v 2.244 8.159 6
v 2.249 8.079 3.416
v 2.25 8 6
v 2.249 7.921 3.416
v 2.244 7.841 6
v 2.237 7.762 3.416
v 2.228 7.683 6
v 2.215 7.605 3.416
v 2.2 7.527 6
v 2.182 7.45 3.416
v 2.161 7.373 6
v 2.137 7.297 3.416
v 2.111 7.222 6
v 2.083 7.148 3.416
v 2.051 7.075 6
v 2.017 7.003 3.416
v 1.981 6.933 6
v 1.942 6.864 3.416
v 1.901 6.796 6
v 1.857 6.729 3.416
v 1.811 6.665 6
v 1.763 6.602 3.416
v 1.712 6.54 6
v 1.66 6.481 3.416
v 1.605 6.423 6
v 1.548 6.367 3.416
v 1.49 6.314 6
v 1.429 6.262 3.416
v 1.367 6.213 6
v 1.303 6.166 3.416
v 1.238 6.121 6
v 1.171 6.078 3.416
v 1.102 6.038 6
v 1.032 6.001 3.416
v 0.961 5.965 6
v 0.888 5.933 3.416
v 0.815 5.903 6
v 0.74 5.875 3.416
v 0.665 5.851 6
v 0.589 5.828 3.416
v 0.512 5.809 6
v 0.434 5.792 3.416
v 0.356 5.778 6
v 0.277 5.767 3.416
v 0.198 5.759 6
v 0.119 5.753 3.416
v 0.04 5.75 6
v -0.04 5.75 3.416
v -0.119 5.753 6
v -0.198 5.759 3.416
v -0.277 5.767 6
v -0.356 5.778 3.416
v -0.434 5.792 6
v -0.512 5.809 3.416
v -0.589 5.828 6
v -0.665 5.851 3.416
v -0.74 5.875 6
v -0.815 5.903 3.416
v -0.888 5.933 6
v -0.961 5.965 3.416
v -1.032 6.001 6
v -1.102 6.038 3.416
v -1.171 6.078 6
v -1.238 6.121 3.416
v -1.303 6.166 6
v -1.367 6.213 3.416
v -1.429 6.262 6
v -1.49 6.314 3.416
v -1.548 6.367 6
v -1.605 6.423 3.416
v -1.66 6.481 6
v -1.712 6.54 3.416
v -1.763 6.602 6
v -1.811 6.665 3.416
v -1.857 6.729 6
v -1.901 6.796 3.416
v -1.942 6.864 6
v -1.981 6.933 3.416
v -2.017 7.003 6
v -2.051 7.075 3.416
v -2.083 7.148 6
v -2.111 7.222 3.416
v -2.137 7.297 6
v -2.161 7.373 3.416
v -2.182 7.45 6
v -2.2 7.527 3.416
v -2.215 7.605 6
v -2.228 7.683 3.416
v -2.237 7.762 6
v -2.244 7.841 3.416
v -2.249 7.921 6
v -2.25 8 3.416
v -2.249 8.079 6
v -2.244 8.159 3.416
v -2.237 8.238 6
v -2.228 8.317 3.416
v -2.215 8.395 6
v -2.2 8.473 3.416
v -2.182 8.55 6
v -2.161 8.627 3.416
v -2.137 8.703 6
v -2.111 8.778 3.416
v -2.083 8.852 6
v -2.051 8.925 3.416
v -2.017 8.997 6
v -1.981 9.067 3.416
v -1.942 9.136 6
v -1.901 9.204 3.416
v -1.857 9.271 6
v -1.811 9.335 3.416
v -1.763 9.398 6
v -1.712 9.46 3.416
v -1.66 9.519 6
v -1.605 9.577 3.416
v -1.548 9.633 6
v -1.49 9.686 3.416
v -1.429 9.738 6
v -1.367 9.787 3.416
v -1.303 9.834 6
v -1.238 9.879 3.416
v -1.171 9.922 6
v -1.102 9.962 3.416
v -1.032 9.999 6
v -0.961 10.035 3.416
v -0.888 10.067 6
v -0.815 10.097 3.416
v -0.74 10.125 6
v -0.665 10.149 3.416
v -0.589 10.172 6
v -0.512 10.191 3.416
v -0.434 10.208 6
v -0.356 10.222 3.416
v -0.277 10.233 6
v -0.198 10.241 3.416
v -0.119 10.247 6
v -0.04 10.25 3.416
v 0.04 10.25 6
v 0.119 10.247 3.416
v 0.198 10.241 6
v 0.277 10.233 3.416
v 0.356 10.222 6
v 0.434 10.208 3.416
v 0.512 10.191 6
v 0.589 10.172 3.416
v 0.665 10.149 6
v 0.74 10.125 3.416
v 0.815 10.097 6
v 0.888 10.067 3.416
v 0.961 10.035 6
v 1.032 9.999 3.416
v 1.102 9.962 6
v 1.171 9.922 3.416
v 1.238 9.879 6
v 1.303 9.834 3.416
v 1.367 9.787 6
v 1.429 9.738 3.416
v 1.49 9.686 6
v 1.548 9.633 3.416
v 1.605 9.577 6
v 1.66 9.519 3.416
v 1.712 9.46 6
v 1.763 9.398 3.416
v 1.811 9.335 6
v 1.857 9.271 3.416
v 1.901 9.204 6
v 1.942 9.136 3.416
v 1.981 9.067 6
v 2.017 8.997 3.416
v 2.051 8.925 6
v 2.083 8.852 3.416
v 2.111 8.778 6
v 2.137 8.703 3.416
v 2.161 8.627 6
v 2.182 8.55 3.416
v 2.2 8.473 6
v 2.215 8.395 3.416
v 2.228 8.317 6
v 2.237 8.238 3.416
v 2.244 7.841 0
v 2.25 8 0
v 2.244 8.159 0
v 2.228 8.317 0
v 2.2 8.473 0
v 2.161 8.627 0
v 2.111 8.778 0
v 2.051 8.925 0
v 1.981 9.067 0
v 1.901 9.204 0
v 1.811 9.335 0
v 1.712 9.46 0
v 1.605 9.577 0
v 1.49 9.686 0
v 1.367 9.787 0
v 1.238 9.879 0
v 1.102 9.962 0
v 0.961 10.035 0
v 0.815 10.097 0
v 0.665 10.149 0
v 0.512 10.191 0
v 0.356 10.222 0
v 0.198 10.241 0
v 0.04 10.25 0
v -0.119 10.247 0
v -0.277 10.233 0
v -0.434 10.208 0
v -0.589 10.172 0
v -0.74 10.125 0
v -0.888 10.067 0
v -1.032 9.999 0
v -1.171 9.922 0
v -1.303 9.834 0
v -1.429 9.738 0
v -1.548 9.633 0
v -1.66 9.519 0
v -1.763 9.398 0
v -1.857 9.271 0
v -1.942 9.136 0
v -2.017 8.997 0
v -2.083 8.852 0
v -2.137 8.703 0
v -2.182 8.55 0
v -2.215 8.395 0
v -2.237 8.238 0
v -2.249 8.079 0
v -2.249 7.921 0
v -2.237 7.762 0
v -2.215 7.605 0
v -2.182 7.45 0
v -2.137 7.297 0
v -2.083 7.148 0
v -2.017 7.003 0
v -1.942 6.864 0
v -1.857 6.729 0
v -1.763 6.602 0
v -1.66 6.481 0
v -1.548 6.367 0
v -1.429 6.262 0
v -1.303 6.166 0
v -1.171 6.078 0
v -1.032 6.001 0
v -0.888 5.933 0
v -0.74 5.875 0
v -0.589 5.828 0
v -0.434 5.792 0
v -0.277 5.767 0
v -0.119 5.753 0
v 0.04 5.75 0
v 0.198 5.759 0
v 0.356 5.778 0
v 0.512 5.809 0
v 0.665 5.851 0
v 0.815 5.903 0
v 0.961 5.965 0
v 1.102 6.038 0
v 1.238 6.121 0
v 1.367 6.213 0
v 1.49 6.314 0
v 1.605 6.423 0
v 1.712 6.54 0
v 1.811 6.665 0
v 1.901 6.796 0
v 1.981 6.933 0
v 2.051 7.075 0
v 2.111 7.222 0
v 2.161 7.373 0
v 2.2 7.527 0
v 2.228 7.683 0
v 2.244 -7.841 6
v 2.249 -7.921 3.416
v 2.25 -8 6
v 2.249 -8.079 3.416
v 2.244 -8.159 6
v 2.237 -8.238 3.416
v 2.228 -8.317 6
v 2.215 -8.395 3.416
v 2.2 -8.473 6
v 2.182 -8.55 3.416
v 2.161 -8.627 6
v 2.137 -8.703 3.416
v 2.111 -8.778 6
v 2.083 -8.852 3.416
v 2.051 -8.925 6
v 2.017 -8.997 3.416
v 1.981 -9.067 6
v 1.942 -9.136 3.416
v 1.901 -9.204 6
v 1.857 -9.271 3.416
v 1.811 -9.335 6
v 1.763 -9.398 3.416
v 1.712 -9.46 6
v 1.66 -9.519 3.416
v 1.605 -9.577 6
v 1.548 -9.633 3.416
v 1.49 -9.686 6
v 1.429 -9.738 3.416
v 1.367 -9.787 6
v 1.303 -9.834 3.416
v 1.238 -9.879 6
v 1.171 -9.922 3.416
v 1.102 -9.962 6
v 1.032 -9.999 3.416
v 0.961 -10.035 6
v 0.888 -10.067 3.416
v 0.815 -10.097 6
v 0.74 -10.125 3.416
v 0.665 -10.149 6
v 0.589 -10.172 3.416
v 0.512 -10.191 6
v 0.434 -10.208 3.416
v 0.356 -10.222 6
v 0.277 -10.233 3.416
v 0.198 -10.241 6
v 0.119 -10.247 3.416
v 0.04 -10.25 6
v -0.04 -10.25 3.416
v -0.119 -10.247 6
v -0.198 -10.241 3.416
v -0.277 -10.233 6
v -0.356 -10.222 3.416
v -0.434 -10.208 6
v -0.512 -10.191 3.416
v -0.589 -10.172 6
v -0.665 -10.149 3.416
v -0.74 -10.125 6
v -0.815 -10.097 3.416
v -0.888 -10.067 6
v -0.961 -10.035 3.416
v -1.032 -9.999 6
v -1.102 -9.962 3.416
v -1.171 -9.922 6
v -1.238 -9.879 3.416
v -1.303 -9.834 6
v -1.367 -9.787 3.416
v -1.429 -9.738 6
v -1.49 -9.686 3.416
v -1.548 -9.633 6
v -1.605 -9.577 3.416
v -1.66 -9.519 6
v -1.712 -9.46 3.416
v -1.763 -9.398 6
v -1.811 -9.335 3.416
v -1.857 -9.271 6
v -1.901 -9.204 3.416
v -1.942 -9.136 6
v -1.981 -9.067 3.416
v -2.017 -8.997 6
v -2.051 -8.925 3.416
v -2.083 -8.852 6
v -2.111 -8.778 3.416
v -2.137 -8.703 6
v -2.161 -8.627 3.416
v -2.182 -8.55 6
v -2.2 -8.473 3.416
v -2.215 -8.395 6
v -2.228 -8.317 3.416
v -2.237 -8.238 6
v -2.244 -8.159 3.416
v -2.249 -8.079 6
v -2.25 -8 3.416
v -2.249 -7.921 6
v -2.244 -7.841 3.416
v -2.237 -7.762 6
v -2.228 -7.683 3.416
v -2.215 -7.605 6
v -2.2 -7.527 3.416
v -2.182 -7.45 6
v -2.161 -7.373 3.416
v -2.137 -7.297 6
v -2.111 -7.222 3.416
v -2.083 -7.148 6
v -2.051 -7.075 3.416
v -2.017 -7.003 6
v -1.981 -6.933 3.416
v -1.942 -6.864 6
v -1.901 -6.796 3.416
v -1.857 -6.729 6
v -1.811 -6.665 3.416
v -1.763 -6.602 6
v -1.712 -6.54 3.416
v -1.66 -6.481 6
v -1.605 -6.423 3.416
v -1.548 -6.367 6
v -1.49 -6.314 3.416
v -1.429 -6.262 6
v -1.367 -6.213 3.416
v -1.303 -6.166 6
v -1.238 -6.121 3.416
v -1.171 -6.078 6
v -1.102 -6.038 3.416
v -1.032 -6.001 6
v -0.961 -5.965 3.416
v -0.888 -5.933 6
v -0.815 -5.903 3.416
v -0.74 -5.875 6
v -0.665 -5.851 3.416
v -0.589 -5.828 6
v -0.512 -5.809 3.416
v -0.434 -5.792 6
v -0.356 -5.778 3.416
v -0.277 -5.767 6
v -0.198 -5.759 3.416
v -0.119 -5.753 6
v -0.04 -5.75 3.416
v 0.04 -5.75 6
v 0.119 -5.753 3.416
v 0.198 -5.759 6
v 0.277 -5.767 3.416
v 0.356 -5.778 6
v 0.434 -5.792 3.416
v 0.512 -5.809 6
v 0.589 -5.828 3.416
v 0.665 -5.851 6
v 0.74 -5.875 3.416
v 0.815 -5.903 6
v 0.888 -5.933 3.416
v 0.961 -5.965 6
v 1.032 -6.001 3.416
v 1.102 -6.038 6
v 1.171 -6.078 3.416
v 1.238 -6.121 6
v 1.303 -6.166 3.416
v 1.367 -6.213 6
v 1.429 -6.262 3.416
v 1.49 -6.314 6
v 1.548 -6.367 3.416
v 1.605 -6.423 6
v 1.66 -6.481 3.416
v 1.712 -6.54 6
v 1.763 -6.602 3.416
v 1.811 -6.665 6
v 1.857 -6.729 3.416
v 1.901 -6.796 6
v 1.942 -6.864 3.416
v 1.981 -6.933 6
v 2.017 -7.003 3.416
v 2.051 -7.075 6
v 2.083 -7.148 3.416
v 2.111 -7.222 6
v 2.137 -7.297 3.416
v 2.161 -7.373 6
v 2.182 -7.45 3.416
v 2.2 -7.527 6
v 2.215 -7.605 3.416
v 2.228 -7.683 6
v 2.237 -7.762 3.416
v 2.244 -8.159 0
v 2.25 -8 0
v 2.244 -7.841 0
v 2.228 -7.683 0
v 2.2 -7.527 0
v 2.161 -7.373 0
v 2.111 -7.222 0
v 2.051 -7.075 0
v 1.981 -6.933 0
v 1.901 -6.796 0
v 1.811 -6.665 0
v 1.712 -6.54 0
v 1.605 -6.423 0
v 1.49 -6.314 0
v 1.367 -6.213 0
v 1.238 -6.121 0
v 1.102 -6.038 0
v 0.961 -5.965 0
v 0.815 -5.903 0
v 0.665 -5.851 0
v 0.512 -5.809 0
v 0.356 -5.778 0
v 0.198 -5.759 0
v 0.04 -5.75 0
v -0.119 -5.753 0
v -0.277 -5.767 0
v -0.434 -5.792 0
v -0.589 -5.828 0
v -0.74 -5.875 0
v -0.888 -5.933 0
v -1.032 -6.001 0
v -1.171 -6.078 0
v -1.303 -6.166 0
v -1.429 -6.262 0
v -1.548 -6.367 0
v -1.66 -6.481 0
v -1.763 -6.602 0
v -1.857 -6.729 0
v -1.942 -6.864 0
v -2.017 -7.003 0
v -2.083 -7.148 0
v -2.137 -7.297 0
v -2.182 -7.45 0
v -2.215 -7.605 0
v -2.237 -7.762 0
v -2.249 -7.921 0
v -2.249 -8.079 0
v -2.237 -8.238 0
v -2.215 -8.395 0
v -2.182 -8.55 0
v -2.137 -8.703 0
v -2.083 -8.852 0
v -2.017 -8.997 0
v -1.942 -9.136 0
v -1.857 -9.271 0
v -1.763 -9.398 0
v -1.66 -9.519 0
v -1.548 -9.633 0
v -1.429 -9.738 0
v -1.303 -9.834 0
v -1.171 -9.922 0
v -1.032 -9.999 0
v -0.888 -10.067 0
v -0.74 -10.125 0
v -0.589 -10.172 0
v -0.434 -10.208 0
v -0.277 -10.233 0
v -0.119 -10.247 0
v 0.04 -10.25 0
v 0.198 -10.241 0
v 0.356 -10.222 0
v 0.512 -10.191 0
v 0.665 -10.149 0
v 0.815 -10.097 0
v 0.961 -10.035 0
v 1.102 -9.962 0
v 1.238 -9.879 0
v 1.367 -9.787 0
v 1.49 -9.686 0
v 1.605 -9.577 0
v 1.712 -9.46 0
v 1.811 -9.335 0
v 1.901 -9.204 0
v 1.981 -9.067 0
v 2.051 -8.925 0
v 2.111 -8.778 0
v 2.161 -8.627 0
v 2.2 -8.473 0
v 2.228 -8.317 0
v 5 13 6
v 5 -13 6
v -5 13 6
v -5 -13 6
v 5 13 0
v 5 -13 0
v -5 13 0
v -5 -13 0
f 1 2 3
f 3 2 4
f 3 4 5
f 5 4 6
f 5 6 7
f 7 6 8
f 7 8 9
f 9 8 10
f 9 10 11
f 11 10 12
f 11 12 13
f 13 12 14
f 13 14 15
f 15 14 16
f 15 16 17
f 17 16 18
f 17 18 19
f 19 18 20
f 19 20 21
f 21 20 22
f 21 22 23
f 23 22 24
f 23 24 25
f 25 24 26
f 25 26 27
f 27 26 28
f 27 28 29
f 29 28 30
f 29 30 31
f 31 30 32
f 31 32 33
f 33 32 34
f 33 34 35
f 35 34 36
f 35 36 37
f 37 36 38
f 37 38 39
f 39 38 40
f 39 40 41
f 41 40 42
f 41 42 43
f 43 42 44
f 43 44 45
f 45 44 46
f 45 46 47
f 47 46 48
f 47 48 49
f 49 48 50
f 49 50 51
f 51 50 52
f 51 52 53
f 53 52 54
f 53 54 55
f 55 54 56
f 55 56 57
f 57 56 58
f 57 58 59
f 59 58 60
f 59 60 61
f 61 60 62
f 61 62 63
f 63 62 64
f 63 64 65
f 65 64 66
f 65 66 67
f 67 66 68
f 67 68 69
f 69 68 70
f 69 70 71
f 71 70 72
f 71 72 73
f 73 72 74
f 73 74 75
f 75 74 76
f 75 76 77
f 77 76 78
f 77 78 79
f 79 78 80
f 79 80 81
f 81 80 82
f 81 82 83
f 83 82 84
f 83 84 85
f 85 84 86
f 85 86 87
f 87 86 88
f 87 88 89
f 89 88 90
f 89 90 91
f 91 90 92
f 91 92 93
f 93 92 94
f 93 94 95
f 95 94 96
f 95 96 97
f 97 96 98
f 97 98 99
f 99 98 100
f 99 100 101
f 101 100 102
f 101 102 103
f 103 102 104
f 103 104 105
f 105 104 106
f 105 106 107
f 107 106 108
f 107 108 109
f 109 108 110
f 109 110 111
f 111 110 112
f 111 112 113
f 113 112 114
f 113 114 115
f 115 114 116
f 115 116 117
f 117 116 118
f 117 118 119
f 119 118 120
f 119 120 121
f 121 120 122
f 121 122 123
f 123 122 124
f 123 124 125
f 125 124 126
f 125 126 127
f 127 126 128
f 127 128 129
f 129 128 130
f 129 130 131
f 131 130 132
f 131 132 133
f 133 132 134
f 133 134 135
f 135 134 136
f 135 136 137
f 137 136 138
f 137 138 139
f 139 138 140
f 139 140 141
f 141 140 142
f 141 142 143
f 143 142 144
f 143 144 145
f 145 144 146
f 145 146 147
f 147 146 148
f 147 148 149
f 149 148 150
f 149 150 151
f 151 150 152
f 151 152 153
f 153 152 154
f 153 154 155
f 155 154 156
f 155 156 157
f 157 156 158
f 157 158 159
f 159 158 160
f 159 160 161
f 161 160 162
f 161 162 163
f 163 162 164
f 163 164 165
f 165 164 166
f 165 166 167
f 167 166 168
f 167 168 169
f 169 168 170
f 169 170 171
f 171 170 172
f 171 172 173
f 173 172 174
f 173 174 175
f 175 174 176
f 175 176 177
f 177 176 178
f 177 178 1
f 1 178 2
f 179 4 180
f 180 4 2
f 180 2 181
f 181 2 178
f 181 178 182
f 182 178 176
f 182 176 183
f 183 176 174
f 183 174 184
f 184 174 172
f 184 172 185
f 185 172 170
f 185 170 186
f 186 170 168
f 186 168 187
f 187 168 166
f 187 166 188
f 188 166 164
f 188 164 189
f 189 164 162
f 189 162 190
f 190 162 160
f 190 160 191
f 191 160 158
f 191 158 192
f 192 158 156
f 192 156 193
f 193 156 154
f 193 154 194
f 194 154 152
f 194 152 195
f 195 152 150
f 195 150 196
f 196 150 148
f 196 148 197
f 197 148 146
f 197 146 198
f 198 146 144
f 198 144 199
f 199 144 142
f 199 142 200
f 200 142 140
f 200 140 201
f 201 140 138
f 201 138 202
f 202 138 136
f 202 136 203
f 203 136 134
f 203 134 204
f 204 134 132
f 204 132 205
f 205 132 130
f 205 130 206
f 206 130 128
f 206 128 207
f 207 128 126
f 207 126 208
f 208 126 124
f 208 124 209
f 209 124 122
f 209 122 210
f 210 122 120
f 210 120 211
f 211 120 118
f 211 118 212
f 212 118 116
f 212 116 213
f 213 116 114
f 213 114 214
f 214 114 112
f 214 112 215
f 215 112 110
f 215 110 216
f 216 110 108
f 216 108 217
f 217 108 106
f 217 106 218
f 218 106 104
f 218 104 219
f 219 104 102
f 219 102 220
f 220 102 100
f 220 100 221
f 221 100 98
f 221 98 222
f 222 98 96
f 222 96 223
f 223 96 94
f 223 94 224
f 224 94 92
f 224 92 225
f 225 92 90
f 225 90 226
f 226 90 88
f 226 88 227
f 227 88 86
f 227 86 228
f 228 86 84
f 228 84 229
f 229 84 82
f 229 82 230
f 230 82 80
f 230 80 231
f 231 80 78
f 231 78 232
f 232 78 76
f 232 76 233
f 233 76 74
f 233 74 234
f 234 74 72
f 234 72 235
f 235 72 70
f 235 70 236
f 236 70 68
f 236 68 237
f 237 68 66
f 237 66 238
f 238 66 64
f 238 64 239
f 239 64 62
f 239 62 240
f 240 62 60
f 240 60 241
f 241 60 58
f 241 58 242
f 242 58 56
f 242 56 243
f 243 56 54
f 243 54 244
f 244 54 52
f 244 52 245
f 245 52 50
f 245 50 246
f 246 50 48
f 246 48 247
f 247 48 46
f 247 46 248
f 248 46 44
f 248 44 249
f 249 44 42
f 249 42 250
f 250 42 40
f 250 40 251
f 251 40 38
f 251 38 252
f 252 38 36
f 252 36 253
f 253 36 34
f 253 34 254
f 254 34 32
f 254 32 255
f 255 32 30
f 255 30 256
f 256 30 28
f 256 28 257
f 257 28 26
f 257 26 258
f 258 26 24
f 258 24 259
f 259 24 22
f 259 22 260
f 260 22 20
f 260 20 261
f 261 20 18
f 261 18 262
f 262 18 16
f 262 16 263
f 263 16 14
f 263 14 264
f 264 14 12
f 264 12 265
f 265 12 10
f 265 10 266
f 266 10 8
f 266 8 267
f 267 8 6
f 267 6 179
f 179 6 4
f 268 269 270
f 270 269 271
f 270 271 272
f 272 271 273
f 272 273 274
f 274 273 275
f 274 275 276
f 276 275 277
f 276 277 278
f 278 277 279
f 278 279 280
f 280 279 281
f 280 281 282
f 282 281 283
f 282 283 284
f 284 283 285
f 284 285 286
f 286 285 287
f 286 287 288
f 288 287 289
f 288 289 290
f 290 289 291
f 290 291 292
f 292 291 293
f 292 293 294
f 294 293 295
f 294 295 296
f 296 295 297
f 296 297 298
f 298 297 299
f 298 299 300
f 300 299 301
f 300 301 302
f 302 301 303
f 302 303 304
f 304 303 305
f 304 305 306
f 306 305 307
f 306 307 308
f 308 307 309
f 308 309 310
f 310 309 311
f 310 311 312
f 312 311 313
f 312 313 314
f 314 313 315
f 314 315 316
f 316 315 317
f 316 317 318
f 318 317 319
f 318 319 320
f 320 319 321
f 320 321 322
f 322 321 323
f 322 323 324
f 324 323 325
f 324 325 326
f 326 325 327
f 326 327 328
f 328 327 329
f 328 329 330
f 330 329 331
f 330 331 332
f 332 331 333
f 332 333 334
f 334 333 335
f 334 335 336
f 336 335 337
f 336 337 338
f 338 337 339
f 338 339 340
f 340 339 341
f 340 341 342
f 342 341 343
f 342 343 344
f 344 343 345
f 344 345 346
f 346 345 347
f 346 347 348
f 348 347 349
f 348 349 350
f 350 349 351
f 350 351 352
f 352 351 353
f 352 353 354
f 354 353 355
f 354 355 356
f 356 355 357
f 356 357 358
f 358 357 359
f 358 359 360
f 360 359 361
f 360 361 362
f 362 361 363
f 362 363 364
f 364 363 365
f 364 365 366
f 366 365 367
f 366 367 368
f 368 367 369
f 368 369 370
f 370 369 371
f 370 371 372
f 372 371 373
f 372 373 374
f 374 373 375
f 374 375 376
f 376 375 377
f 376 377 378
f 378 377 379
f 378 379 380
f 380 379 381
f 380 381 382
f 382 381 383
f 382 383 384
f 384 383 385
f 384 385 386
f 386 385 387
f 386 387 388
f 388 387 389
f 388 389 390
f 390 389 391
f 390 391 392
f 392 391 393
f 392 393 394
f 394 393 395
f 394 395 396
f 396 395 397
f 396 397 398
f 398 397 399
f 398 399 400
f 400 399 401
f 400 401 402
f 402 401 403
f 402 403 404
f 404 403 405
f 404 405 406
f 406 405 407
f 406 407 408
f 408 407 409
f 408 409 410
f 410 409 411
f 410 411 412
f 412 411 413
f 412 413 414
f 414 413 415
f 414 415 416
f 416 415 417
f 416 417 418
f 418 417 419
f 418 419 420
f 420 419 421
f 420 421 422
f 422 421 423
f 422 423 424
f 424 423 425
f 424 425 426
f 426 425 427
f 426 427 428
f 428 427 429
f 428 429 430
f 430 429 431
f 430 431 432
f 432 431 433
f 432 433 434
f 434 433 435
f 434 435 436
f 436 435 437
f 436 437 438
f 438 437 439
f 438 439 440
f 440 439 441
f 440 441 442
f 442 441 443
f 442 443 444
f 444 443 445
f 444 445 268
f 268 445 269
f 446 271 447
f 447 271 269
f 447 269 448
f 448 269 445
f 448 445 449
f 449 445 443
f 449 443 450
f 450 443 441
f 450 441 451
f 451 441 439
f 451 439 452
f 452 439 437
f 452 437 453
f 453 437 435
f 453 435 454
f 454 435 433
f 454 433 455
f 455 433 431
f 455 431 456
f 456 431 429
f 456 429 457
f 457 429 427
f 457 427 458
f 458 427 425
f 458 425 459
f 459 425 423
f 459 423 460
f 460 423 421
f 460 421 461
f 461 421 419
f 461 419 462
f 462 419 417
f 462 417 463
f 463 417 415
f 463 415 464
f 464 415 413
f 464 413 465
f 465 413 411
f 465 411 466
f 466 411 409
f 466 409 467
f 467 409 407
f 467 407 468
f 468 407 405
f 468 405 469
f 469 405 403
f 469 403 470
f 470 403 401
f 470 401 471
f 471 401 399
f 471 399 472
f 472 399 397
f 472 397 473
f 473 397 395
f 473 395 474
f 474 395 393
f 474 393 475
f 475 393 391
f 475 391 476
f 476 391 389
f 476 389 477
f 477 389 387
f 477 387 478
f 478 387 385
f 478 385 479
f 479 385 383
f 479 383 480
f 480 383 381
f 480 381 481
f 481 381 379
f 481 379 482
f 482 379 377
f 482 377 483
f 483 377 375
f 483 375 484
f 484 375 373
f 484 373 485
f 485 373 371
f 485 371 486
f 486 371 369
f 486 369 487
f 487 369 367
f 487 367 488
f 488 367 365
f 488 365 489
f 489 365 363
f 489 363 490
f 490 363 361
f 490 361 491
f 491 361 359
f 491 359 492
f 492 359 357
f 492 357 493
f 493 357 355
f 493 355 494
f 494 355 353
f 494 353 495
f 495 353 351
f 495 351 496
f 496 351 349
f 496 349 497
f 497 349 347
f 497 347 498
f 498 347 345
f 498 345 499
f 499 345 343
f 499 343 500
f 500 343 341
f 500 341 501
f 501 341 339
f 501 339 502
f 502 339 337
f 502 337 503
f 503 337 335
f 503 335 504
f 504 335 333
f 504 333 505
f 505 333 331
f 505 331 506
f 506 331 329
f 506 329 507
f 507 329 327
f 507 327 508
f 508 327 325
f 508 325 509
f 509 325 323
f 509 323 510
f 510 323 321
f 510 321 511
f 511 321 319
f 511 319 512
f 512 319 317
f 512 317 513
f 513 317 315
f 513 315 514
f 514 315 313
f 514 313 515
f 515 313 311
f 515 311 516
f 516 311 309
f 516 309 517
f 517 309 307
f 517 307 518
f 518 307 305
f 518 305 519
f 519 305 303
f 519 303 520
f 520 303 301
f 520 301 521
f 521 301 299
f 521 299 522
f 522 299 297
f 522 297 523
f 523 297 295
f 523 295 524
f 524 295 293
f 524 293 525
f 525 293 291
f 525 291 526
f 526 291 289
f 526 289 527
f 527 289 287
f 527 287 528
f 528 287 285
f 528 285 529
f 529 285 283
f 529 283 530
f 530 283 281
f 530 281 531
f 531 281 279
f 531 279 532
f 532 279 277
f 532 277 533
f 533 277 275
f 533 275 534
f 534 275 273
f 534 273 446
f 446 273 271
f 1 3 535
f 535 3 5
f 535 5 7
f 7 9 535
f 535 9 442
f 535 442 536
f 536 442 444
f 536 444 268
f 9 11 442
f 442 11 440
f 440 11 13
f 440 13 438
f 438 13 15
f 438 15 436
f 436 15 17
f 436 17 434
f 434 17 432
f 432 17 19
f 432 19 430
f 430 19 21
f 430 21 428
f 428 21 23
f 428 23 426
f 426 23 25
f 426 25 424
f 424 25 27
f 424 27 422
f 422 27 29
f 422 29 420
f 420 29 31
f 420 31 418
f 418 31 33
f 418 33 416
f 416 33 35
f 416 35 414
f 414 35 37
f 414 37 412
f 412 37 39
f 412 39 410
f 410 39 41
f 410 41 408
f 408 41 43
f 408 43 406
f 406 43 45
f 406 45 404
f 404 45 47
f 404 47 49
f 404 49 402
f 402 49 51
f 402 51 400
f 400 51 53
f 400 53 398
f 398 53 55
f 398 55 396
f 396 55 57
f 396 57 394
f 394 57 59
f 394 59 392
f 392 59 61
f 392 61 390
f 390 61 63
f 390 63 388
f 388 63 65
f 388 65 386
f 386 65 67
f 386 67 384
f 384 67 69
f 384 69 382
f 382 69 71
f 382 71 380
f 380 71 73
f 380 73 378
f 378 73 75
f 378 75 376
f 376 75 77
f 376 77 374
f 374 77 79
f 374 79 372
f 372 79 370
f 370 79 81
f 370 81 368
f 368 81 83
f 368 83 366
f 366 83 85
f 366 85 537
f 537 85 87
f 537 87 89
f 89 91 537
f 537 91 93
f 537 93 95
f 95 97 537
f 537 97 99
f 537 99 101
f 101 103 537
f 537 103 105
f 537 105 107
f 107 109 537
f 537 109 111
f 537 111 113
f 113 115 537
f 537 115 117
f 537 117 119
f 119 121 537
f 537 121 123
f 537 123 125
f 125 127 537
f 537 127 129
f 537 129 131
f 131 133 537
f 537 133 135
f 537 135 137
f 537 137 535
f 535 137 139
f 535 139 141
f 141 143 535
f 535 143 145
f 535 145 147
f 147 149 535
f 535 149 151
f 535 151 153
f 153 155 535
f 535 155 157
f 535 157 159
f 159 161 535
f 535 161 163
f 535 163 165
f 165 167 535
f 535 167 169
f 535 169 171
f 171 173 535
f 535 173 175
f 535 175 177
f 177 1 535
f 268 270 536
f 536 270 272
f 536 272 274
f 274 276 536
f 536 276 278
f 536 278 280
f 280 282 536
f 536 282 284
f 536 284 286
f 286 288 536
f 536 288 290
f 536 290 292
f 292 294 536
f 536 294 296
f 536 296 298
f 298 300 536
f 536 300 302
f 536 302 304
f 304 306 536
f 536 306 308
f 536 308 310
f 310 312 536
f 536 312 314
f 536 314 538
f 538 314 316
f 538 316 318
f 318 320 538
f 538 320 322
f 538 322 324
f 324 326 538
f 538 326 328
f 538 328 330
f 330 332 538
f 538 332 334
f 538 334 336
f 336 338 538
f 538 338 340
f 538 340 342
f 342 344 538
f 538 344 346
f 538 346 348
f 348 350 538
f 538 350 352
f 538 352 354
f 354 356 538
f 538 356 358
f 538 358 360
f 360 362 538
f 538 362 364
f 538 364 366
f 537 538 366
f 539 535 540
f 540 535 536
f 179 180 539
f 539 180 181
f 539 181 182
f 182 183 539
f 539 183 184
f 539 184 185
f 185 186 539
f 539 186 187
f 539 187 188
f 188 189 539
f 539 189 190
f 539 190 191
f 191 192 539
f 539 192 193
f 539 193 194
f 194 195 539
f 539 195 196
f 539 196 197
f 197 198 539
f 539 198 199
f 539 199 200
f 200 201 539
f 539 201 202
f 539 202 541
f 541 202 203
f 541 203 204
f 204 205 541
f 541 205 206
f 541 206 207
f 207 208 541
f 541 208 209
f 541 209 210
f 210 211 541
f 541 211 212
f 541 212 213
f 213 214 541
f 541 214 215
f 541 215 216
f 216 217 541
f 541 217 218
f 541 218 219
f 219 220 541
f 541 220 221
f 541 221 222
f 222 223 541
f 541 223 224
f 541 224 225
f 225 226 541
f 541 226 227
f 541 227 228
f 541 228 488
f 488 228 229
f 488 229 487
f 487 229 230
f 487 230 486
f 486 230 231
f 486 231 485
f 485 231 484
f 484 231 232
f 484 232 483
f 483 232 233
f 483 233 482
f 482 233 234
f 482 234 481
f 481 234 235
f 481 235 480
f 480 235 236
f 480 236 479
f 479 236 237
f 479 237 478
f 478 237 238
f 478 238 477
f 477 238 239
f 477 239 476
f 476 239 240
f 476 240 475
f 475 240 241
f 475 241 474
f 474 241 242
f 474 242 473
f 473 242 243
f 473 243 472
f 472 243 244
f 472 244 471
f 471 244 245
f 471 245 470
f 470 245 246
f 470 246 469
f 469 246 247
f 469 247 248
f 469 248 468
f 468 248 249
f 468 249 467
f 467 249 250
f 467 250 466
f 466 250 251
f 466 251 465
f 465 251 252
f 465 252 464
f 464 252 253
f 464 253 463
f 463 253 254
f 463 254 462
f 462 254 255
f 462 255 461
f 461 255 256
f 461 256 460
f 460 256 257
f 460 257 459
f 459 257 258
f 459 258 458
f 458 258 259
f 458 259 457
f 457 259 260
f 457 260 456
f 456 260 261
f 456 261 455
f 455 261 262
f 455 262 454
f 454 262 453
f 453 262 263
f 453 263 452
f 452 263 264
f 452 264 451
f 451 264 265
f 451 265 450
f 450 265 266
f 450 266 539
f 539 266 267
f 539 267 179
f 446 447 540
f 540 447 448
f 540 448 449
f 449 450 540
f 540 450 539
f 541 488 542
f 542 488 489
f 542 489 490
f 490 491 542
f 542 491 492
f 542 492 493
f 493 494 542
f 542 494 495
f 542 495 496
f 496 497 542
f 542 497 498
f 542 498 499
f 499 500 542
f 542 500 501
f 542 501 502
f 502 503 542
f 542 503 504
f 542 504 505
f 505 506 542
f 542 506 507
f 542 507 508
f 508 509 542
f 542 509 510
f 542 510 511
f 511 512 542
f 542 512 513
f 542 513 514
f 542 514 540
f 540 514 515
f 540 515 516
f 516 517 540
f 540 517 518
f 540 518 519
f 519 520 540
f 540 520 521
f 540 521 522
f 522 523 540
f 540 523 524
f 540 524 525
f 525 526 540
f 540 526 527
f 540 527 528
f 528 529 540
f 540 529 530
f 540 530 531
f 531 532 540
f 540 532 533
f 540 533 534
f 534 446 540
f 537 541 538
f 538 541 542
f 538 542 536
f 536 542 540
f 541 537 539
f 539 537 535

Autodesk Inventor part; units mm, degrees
ref_plane "YZ Plane" through (0, 0, 0) normal (1, 0, 0) x (0, 1, 0)
ref_plane "XY Plane" through (0, 0, 0) normal (0, 0, 1) x (1, 0, 0)
ref_plane "Work Plane1" through (0, 13, 0) normal (0, 1, 0) x (-1, 0, 0)
sketch "Sketch1" plane through (0, 13, 0) normal (0, 1, 0) x (-1, 0, 0)
  line L0 (5, 6) -> (5, 0)
  line L1 (-5, 6) -> (5, 6)
  line L2 (-5, 0) -> (5, 0)
  line L3 (-5, 6) -> (-5, 0)
extrude "Extrusion1" add sketch "Sketch1" against normal blind 26
hole "Hole2" at (0, -8, 0) direction (0, 0, 1) diameter 4.5 depth 6
sketch "Sketch2" plane through (0, 0, 0) normal (0, 0, 1) x (1, 0, 0)
  point P0 (0, -8)
hole "Hole1" at (0, 8, 0) direction (0, 0, 1) diameter 4.5 depth 6
sketch "Sketch3" plane through (0, 0, 0) normal (0, 0, 1) x (1, 0, 0)
  point P0 (0, 8)
properties part number "carriage Belt clamp" material "ASA Plastic"
